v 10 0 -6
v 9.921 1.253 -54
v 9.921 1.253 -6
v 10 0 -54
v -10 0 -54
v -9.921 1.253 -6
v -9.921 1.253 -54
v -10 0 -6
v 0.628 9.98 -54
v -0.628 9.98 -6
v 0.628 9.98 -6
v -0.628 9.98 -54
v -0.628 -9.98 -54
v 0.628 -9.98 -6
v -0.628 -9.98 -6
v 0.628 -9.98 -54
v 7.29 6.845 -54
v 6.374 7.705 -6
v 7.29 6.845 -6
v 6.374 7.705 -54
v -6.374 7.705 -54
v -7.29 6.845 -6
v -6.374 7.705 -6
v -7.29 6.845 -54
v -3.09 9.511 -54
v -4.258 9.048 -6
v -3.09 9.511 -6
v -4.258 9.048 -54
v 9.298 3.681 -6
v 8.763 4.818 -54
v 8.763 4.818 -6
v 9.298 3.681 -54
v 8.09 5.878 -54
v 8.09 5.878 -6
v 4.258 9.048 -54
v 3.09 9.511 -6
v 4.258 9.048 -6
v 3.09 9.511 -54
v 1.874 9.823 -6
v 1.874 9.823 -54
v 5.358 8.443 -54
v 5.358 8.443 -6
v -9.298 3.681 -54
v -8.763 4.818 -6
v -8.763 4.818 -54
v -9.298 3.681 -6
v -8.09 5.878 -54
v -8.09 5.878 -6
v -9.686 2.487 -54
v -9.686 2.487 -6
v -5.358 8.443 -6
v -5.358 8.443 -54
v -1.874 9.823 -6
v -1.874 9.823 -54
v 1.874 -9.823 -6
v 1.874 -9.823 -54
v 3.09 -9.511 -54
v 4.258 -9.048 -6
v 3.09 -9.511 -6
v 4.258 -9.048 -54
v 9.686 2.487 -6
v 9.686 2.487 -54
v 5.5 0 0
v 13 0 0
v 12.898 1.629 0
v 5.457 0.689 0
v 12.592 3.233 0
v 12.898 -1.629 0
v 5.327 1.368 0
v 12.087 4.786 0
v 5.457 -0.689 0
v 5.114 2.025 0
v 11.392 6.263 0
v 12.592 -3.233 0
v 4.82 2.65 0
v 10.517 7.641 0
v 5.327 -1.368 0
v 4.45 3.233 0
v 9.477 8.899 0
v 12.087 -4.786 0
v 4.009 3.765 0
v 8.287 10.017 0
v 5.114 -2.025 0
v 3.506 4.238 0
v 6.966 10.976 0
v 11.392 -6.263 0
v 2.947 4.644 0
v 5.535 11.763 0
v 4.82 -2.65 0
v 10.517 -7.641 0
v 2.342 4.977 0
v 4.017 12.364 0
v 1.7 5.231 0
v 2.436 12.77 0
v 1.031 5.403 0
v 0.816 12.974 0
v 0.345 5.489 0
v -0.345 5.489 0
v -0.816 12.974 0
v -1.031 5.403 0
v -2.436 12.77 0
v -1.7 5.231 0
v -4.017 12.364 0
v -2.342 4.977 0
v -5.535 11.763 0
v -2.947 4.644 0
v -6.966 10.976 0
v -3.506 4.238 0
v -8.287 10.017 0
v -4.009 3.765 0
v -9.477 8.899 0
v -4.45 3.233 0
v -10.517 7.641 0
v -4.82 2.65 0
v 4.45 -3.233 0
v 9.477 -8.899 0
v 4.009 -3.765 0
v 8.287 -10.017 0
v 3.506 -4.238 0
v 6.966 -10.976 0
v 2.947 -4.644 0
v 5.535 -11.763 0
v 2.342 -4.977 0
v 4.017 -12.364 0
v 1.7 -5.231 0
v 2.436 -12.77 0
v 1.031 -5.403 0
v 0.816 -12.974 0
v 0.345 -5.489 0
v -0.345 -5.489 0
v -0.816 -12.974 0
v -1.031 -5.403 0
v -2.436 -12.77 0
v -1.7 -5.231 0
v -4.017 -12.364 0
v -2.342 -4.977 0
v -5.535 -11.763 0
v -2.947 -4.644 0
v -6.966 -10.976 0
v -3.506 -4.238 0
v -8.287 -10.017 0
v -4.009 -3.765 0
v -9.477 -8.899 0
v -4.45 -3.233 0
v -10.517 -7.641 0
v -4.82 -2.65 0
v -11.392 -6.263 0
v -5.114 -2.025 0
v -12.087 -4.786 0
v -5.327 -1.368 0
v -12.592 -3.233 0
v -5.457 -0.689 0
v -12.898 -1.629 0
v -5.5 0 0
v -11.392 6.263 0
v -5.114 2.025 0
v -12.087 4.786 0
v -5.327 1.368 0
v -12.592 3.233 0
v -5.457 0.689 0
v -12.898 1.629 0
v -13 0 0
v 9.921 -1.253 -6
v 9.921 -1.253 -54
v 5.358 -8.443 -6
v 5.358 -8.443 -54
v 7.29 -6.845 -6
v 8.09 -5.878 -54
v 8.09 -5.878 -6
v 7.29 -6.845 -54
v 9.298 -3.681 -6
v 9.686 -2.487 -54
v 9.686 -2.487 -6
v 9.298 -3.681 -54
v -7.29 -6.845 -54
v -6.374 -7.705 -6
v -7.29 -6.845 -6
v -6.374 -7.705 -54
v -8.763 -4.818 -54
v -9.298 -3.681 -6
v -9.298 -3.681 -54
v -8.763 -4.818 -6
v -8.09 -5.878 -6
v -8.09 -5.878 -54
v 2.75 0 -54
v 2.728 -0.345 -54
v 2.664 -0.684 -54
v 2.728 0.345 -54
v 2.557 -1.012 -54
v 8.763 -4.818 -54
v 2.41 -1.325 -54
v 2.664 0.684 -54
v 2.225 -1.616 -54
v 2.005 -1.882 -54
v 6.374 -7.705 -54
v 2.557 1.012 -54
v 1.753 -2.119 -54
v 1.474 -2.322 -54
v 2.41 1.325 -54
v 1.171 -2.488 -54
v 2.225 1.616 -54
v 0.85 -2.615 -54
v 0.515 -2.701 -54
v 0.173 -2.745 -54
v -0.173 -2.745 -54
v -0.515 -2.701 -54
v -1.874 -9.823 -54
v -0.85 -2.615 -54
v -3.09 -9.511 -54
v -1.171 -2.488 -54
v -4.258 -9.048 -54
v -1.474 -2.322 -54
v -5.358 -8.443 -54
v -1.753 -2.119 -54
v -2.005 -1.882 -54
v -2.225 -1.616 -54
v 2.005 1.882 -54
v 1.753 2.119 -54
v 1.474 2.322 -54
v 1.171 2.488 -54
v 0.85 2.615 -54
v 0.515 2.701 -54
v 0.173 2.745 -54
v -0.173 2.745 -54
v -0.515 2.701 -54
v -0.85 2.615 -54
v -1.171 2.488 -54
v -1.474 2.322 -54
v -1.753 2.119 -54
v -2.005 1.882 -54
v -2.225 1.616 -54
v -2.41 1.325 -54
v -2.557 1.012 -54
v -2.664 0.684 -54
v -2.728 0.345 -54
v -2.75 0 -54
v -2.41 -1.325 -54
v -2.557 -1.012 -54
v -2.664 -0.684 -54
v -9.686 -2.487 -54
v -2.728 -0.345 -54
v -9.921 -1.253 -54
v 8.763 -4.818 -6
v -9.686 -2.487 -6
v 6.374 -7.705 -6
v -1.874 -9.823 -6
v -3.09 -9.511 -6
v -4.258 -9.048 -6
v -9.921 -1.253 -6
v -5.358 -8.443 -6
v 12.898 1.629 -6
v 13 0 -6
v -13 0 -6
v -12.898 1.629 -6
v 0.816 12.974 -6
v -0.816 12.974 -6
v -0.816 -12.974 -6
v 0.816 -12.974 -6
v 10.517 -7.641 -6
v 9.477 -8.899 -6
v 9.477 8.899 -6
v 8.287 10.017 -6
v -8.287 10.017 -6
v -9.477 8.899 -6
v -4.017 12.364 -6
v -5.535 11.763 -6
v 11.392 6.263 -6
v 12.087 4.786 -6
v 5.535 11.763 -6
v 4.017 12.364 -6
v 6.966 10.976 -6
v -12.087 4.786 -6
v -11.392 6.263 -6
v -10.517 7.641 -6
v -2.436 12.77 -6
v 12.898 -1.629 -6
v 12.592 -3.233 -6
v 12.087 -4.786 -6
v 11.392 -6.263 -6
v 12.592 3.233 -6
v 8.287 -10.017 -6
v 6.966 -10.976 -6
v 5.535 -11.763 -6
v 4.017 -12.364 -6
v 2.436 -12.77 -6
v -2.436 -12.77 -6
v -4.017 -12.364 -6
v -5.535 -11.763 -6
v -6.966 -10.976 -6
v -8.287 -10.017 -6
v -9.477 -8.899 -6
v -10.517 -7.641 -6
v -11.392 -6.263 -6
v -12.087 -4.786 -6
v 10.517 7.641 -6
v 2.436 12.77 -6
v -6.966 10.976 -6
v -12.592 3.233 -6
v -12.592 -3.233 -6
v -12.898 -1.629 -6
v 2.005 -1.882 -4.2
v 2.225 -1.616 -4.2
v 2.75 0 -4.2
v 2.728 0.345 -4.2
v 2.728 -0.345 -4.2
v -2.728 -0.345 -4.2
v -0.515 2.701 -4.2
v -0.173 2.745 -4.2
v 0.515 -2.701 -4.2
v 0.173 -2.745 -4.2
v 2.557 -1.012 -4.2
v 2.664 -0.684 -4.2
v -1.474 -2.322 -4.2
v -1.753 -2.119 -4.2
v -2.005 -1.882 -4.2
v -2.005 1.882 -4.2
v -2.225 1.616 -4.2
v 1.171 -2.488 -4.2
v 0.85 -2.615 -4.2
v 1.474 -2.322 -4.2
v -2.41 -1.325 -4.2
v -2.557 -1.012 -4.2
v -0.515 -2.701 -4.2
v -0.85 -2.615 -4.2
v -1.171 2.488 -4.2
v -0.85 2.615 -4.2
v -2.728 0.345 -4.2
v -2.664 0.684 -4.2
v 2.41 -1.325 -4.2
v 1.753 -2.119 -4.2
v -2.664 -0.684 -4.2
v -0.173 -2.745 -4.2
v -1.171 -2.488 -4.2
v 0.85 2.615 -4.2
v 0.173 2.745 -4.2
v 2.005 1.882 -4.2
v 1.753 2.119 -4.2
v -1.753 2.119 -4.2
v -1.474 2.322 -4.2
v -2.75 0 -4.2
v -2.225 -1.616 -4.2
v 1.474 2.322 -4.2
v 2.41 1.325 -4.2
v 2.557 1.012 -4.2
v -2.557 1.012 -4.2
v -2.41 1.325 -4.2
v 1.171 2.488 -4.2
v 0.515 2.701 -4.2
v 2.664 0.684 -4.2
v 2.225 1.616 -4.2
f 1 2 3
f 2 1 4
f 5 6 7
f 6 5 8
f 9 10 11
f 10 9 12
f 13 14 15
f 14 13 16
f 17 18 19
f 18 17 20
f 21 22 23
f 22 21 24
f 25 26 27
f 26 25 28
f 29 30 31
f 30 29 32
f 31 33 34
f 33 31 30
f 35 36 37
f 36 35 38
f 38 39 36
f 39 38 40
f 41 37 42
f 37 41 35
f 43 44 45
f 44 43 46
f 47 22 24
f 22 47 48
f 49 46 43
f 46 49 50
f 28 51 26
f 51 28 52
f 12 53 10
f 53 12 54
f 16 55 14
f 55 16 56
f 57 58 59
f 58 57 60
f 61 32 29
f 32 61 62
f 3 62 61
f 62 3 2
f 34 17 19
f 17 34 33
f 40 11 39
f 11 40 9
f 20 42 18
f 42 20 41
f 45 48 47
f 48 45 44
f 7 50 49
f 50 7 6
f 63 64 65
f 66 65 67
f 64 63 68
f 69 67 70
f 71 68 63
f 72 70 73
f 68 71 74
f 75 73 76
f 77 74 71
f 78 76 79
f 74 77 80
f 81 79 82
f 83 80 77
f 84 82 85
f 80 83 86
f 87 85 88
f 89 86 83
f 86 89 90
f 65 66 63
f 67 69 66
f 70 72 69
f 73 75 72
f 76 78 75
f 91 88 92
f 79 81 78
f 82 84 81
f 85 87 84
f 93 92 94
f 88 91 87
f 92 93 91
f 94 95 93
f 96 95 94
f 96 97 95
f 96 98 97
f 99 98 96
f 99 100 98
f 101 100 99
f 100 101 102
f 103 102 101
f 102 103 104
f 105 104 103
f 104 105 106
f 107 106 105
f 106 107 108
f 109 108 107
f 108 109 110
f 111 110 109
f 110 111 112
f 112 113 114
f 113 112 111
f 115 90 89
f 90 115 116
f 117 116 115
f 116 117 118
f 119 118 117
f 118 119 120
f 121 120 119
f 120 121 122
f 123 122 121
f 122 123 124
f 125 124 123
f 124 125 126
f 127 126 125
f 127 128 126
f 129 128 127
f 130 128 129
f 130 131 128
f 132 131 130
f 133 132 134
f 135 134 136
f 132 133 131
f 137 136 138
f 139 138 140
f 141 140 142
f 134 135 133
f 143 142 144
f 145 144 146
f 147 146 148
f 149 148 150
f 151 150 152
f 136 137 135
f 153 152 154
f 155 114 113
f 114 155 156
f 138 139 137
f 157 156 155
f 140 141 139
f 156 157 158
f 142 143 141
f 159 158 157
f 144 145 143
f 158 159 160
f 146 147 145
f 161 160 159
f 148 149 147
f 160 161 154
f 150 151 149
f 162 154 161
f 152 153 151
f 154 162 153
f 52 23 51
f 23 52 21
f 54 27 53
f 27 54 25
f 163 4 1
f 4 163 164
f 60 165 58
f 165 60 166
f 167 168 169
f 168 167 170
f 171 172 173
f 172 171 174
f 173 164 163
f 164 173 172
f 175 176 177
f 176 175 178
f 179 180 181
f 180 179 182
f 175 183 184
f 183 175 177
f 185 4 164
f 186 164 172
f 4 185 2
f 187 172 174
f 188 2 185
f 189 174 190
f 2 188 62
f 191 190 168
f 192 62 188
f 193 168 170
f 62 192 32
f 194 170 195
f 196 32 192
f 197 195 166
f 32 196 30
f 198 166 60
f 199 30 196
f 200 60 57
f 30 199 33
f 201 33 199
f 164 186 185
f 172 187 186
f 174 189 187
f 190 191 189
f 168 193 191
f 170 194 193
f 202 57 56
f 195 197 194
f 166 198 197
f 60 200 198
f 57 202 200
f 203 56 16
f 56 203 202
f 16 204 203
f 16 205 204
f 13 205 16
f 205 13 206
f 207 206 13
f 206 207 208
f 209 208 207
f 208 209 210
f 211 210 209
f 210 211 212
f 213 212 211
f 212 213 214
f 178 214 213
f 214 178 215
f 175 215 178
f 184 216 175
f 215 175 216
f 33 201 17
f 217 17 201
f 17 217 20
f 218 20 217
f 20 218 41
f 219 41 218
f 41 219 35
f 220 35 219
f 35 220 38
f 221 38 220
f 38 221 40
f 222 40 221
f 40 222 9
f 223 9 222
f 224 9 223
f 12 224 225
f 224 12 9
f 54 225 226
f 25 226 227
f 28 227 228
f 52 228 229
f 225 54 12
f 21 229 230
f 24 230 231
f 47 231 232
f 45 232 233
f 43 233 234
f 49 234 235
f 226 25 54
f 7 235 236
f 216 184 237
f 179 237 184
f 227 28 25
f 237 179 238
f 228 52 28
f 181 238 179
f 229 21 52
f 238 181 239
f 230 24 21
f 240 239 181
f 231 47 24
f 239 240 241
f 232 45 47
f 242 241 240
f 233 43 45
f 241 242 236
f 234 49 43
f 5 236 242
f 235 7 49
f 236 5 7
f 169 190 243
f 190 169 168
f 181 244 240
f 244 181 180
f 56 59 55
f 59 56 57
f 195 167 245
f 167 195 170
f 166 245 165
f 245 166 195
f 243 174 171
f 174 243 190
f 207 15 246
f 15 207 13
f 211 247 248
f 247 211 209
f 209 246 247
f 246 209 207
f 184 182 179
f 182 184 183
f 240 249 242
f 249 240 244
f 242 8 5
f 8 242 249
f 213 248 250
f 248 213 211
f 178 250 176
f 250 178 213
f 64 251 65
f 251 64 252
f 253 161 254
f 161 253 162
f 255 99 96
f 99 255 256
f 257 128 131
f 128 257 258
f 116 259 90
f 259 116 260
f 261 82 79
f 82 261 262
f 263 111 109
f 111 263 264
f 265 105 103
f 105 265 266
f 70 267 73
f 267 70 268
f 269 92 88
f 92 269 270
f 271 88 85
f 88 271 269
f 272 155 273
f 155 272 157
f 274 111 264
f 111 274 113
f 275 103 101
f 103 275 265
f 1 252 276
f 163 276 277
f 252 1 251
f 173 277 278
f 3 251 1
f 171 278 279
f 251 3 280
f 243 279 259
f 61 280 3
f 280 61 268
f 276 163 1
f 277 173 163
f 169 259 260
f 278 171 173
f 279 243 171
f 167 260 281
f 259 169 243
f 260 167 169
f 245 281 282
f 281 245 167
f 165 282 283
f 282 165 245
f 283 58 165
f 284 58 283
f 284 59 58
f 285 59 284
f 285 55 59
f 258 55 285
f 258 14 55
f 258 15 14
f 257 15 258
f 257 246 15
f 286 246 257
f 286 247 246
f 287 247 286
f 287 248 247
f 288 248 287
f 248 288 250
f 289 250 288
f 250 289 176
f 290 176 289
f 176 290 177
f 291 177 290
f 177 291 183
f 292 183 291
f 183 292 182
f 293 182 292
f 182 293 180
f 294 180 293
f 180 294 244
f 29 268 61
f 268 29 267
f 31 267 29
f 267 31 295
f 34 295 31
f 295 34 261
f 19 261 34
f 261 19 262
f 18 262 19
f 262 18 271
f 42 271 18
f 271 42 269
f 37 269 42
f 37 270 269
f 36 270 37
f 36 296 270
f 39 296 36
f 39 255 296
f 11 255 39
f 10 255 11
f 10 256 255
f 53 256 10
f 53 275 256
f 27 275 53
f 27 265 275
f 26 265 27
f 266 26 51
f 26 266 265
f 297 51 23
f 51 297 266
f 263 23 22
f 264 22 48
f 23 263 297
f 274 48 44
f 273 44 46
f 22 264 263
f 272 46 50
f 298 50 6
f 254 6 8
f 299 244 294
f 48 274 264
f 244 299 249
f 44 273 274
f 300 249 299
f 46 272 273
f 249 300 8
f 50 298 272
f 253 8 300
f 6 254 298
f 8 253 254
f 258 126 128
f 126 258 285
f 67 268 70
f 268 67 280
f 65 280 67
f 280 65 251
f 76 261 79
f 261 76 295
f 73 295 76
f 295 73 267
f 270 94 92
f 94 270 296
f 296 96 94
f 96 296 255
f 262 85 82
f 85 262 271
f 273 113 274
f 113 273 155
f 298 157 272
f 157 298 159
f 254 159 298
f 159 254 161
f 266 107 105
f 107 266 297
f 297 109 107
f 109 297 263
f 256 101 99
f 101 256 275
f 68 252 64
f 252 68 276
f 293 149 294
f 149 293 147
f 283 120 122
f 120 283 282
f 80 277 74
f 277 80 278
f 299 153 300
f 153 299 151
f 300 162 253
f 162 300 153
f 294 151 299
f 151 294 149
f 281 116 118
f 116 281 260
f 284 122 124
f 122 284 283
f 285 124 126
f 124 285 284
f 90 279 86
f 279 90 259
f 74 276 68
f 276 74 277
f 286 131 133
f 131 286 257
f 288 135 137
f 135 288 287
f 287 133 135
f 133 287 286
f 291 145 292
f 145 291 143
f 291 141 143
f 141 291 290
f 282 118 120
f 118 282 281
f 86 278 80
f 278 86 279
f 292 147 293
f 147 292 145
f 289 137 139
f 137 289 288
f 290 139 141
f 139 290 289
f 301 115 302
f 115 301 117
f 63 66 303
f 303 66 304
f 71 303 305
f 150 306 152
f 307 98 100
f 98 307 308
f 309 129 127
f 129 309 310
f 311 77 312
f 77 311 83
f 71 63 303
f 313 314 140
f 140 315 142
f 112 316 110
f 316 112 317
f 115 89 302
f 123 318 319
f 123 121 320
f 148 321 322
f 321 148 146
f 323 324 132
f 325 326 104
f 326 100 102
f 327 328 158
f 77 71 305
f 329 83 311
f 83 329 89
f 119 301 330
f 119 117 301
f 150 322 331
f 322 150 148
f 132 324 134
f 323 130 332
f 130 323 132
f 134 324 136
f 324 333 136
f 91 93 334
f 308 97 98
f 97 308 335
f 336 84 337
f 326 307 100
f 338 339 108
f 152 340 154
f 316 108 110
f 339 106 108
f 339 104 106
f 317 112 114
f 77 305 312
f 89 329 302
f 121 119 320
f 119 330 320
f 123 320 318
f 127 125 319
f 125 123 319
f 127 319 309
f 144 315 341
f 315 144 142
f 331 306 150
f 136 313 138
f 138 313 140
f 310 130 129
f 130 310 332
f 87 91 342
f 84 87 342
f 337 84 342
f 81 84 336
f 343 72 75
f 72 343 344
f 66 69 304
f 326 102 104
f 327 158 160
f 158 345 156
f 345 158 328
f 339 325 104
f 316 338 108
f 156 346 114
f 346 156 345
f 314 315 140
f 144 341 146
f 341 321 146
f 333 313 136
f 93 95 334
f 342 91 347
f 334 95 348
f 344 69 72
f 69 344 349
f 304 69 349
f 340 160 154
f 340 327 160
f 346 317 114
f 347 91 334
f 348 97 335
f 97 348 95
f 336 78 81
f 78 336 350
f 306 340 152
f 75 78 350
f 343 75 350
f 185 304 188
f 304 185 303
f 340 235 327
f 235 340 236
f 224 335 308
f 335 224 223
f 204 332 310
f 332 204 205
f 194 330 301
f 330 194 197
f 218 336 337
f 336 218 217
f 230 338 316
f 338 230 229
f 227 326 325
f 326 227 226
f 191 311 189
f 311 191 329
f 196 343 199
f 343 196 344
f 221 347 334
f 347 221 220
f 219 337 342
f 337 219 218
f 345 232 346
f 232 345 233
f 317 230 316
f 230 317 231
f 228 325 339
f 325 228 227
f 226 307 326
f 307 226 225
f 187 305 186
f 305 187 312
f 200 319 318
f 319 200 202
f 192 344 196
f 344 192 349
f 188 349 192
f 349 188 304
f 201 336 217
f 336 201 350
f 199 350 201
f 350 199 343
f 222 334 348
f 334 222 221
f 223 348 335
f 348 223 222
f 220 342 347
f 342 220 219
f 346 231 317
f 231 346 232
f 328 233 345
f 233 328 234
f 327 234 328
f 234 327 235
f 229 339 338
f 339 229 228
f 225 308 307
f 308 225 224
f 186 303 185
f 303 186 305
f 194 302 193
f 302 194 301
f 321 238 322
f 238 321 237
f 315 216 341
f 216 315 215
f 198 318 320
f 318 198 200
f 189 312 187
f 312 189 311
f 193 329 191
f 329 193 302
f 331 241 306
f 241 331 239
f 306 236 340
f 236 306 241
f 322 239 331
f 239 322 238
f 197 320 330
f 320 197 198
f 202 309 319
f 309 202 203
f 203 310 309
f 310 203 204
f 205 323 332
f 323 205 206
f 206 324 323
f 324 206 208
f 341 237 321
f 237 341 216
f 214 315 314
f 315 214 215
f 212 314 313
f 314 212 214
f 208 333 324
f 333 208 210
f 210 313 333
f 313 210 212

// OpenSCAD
$fn = 50;


difference() {
	union() {
		translate(v = [0, 0, -54.0000000000]) {
			cylinder(h = 54, r = 10.0000000000);
		}
		translate(v = [0, 0, -6.0000000000]) {
			cylinder(h = 6, r = 13.0000000000);
		}
	}
	union() {
		translate(v = [0, 0, 0]) {
			rotate(a = [0, 0, 0]) {
				difference() {
					union() {
						#translate(v = [0, 0, -54.0000000000]) {
							cylinder(h = 54, r = 2.2500000000);
						}
						#translate(v = [0, 0, -4.2000000000]) {
							cylinder(h = 4.2000000000, r1 = 2.7500000000, r2 = 5.5000000000);
						}
						#translate(v = [0, 0, -54.0000000000]) {
							cylinder(h = 54, r = 2.7500000000);
						}
						#translate(v = [0, 0, -54.0000000000]) {
							cylinder(h = 54, r = 2.2500000000);
						}
					}
					union();
				}
			}
		}
	}
}
